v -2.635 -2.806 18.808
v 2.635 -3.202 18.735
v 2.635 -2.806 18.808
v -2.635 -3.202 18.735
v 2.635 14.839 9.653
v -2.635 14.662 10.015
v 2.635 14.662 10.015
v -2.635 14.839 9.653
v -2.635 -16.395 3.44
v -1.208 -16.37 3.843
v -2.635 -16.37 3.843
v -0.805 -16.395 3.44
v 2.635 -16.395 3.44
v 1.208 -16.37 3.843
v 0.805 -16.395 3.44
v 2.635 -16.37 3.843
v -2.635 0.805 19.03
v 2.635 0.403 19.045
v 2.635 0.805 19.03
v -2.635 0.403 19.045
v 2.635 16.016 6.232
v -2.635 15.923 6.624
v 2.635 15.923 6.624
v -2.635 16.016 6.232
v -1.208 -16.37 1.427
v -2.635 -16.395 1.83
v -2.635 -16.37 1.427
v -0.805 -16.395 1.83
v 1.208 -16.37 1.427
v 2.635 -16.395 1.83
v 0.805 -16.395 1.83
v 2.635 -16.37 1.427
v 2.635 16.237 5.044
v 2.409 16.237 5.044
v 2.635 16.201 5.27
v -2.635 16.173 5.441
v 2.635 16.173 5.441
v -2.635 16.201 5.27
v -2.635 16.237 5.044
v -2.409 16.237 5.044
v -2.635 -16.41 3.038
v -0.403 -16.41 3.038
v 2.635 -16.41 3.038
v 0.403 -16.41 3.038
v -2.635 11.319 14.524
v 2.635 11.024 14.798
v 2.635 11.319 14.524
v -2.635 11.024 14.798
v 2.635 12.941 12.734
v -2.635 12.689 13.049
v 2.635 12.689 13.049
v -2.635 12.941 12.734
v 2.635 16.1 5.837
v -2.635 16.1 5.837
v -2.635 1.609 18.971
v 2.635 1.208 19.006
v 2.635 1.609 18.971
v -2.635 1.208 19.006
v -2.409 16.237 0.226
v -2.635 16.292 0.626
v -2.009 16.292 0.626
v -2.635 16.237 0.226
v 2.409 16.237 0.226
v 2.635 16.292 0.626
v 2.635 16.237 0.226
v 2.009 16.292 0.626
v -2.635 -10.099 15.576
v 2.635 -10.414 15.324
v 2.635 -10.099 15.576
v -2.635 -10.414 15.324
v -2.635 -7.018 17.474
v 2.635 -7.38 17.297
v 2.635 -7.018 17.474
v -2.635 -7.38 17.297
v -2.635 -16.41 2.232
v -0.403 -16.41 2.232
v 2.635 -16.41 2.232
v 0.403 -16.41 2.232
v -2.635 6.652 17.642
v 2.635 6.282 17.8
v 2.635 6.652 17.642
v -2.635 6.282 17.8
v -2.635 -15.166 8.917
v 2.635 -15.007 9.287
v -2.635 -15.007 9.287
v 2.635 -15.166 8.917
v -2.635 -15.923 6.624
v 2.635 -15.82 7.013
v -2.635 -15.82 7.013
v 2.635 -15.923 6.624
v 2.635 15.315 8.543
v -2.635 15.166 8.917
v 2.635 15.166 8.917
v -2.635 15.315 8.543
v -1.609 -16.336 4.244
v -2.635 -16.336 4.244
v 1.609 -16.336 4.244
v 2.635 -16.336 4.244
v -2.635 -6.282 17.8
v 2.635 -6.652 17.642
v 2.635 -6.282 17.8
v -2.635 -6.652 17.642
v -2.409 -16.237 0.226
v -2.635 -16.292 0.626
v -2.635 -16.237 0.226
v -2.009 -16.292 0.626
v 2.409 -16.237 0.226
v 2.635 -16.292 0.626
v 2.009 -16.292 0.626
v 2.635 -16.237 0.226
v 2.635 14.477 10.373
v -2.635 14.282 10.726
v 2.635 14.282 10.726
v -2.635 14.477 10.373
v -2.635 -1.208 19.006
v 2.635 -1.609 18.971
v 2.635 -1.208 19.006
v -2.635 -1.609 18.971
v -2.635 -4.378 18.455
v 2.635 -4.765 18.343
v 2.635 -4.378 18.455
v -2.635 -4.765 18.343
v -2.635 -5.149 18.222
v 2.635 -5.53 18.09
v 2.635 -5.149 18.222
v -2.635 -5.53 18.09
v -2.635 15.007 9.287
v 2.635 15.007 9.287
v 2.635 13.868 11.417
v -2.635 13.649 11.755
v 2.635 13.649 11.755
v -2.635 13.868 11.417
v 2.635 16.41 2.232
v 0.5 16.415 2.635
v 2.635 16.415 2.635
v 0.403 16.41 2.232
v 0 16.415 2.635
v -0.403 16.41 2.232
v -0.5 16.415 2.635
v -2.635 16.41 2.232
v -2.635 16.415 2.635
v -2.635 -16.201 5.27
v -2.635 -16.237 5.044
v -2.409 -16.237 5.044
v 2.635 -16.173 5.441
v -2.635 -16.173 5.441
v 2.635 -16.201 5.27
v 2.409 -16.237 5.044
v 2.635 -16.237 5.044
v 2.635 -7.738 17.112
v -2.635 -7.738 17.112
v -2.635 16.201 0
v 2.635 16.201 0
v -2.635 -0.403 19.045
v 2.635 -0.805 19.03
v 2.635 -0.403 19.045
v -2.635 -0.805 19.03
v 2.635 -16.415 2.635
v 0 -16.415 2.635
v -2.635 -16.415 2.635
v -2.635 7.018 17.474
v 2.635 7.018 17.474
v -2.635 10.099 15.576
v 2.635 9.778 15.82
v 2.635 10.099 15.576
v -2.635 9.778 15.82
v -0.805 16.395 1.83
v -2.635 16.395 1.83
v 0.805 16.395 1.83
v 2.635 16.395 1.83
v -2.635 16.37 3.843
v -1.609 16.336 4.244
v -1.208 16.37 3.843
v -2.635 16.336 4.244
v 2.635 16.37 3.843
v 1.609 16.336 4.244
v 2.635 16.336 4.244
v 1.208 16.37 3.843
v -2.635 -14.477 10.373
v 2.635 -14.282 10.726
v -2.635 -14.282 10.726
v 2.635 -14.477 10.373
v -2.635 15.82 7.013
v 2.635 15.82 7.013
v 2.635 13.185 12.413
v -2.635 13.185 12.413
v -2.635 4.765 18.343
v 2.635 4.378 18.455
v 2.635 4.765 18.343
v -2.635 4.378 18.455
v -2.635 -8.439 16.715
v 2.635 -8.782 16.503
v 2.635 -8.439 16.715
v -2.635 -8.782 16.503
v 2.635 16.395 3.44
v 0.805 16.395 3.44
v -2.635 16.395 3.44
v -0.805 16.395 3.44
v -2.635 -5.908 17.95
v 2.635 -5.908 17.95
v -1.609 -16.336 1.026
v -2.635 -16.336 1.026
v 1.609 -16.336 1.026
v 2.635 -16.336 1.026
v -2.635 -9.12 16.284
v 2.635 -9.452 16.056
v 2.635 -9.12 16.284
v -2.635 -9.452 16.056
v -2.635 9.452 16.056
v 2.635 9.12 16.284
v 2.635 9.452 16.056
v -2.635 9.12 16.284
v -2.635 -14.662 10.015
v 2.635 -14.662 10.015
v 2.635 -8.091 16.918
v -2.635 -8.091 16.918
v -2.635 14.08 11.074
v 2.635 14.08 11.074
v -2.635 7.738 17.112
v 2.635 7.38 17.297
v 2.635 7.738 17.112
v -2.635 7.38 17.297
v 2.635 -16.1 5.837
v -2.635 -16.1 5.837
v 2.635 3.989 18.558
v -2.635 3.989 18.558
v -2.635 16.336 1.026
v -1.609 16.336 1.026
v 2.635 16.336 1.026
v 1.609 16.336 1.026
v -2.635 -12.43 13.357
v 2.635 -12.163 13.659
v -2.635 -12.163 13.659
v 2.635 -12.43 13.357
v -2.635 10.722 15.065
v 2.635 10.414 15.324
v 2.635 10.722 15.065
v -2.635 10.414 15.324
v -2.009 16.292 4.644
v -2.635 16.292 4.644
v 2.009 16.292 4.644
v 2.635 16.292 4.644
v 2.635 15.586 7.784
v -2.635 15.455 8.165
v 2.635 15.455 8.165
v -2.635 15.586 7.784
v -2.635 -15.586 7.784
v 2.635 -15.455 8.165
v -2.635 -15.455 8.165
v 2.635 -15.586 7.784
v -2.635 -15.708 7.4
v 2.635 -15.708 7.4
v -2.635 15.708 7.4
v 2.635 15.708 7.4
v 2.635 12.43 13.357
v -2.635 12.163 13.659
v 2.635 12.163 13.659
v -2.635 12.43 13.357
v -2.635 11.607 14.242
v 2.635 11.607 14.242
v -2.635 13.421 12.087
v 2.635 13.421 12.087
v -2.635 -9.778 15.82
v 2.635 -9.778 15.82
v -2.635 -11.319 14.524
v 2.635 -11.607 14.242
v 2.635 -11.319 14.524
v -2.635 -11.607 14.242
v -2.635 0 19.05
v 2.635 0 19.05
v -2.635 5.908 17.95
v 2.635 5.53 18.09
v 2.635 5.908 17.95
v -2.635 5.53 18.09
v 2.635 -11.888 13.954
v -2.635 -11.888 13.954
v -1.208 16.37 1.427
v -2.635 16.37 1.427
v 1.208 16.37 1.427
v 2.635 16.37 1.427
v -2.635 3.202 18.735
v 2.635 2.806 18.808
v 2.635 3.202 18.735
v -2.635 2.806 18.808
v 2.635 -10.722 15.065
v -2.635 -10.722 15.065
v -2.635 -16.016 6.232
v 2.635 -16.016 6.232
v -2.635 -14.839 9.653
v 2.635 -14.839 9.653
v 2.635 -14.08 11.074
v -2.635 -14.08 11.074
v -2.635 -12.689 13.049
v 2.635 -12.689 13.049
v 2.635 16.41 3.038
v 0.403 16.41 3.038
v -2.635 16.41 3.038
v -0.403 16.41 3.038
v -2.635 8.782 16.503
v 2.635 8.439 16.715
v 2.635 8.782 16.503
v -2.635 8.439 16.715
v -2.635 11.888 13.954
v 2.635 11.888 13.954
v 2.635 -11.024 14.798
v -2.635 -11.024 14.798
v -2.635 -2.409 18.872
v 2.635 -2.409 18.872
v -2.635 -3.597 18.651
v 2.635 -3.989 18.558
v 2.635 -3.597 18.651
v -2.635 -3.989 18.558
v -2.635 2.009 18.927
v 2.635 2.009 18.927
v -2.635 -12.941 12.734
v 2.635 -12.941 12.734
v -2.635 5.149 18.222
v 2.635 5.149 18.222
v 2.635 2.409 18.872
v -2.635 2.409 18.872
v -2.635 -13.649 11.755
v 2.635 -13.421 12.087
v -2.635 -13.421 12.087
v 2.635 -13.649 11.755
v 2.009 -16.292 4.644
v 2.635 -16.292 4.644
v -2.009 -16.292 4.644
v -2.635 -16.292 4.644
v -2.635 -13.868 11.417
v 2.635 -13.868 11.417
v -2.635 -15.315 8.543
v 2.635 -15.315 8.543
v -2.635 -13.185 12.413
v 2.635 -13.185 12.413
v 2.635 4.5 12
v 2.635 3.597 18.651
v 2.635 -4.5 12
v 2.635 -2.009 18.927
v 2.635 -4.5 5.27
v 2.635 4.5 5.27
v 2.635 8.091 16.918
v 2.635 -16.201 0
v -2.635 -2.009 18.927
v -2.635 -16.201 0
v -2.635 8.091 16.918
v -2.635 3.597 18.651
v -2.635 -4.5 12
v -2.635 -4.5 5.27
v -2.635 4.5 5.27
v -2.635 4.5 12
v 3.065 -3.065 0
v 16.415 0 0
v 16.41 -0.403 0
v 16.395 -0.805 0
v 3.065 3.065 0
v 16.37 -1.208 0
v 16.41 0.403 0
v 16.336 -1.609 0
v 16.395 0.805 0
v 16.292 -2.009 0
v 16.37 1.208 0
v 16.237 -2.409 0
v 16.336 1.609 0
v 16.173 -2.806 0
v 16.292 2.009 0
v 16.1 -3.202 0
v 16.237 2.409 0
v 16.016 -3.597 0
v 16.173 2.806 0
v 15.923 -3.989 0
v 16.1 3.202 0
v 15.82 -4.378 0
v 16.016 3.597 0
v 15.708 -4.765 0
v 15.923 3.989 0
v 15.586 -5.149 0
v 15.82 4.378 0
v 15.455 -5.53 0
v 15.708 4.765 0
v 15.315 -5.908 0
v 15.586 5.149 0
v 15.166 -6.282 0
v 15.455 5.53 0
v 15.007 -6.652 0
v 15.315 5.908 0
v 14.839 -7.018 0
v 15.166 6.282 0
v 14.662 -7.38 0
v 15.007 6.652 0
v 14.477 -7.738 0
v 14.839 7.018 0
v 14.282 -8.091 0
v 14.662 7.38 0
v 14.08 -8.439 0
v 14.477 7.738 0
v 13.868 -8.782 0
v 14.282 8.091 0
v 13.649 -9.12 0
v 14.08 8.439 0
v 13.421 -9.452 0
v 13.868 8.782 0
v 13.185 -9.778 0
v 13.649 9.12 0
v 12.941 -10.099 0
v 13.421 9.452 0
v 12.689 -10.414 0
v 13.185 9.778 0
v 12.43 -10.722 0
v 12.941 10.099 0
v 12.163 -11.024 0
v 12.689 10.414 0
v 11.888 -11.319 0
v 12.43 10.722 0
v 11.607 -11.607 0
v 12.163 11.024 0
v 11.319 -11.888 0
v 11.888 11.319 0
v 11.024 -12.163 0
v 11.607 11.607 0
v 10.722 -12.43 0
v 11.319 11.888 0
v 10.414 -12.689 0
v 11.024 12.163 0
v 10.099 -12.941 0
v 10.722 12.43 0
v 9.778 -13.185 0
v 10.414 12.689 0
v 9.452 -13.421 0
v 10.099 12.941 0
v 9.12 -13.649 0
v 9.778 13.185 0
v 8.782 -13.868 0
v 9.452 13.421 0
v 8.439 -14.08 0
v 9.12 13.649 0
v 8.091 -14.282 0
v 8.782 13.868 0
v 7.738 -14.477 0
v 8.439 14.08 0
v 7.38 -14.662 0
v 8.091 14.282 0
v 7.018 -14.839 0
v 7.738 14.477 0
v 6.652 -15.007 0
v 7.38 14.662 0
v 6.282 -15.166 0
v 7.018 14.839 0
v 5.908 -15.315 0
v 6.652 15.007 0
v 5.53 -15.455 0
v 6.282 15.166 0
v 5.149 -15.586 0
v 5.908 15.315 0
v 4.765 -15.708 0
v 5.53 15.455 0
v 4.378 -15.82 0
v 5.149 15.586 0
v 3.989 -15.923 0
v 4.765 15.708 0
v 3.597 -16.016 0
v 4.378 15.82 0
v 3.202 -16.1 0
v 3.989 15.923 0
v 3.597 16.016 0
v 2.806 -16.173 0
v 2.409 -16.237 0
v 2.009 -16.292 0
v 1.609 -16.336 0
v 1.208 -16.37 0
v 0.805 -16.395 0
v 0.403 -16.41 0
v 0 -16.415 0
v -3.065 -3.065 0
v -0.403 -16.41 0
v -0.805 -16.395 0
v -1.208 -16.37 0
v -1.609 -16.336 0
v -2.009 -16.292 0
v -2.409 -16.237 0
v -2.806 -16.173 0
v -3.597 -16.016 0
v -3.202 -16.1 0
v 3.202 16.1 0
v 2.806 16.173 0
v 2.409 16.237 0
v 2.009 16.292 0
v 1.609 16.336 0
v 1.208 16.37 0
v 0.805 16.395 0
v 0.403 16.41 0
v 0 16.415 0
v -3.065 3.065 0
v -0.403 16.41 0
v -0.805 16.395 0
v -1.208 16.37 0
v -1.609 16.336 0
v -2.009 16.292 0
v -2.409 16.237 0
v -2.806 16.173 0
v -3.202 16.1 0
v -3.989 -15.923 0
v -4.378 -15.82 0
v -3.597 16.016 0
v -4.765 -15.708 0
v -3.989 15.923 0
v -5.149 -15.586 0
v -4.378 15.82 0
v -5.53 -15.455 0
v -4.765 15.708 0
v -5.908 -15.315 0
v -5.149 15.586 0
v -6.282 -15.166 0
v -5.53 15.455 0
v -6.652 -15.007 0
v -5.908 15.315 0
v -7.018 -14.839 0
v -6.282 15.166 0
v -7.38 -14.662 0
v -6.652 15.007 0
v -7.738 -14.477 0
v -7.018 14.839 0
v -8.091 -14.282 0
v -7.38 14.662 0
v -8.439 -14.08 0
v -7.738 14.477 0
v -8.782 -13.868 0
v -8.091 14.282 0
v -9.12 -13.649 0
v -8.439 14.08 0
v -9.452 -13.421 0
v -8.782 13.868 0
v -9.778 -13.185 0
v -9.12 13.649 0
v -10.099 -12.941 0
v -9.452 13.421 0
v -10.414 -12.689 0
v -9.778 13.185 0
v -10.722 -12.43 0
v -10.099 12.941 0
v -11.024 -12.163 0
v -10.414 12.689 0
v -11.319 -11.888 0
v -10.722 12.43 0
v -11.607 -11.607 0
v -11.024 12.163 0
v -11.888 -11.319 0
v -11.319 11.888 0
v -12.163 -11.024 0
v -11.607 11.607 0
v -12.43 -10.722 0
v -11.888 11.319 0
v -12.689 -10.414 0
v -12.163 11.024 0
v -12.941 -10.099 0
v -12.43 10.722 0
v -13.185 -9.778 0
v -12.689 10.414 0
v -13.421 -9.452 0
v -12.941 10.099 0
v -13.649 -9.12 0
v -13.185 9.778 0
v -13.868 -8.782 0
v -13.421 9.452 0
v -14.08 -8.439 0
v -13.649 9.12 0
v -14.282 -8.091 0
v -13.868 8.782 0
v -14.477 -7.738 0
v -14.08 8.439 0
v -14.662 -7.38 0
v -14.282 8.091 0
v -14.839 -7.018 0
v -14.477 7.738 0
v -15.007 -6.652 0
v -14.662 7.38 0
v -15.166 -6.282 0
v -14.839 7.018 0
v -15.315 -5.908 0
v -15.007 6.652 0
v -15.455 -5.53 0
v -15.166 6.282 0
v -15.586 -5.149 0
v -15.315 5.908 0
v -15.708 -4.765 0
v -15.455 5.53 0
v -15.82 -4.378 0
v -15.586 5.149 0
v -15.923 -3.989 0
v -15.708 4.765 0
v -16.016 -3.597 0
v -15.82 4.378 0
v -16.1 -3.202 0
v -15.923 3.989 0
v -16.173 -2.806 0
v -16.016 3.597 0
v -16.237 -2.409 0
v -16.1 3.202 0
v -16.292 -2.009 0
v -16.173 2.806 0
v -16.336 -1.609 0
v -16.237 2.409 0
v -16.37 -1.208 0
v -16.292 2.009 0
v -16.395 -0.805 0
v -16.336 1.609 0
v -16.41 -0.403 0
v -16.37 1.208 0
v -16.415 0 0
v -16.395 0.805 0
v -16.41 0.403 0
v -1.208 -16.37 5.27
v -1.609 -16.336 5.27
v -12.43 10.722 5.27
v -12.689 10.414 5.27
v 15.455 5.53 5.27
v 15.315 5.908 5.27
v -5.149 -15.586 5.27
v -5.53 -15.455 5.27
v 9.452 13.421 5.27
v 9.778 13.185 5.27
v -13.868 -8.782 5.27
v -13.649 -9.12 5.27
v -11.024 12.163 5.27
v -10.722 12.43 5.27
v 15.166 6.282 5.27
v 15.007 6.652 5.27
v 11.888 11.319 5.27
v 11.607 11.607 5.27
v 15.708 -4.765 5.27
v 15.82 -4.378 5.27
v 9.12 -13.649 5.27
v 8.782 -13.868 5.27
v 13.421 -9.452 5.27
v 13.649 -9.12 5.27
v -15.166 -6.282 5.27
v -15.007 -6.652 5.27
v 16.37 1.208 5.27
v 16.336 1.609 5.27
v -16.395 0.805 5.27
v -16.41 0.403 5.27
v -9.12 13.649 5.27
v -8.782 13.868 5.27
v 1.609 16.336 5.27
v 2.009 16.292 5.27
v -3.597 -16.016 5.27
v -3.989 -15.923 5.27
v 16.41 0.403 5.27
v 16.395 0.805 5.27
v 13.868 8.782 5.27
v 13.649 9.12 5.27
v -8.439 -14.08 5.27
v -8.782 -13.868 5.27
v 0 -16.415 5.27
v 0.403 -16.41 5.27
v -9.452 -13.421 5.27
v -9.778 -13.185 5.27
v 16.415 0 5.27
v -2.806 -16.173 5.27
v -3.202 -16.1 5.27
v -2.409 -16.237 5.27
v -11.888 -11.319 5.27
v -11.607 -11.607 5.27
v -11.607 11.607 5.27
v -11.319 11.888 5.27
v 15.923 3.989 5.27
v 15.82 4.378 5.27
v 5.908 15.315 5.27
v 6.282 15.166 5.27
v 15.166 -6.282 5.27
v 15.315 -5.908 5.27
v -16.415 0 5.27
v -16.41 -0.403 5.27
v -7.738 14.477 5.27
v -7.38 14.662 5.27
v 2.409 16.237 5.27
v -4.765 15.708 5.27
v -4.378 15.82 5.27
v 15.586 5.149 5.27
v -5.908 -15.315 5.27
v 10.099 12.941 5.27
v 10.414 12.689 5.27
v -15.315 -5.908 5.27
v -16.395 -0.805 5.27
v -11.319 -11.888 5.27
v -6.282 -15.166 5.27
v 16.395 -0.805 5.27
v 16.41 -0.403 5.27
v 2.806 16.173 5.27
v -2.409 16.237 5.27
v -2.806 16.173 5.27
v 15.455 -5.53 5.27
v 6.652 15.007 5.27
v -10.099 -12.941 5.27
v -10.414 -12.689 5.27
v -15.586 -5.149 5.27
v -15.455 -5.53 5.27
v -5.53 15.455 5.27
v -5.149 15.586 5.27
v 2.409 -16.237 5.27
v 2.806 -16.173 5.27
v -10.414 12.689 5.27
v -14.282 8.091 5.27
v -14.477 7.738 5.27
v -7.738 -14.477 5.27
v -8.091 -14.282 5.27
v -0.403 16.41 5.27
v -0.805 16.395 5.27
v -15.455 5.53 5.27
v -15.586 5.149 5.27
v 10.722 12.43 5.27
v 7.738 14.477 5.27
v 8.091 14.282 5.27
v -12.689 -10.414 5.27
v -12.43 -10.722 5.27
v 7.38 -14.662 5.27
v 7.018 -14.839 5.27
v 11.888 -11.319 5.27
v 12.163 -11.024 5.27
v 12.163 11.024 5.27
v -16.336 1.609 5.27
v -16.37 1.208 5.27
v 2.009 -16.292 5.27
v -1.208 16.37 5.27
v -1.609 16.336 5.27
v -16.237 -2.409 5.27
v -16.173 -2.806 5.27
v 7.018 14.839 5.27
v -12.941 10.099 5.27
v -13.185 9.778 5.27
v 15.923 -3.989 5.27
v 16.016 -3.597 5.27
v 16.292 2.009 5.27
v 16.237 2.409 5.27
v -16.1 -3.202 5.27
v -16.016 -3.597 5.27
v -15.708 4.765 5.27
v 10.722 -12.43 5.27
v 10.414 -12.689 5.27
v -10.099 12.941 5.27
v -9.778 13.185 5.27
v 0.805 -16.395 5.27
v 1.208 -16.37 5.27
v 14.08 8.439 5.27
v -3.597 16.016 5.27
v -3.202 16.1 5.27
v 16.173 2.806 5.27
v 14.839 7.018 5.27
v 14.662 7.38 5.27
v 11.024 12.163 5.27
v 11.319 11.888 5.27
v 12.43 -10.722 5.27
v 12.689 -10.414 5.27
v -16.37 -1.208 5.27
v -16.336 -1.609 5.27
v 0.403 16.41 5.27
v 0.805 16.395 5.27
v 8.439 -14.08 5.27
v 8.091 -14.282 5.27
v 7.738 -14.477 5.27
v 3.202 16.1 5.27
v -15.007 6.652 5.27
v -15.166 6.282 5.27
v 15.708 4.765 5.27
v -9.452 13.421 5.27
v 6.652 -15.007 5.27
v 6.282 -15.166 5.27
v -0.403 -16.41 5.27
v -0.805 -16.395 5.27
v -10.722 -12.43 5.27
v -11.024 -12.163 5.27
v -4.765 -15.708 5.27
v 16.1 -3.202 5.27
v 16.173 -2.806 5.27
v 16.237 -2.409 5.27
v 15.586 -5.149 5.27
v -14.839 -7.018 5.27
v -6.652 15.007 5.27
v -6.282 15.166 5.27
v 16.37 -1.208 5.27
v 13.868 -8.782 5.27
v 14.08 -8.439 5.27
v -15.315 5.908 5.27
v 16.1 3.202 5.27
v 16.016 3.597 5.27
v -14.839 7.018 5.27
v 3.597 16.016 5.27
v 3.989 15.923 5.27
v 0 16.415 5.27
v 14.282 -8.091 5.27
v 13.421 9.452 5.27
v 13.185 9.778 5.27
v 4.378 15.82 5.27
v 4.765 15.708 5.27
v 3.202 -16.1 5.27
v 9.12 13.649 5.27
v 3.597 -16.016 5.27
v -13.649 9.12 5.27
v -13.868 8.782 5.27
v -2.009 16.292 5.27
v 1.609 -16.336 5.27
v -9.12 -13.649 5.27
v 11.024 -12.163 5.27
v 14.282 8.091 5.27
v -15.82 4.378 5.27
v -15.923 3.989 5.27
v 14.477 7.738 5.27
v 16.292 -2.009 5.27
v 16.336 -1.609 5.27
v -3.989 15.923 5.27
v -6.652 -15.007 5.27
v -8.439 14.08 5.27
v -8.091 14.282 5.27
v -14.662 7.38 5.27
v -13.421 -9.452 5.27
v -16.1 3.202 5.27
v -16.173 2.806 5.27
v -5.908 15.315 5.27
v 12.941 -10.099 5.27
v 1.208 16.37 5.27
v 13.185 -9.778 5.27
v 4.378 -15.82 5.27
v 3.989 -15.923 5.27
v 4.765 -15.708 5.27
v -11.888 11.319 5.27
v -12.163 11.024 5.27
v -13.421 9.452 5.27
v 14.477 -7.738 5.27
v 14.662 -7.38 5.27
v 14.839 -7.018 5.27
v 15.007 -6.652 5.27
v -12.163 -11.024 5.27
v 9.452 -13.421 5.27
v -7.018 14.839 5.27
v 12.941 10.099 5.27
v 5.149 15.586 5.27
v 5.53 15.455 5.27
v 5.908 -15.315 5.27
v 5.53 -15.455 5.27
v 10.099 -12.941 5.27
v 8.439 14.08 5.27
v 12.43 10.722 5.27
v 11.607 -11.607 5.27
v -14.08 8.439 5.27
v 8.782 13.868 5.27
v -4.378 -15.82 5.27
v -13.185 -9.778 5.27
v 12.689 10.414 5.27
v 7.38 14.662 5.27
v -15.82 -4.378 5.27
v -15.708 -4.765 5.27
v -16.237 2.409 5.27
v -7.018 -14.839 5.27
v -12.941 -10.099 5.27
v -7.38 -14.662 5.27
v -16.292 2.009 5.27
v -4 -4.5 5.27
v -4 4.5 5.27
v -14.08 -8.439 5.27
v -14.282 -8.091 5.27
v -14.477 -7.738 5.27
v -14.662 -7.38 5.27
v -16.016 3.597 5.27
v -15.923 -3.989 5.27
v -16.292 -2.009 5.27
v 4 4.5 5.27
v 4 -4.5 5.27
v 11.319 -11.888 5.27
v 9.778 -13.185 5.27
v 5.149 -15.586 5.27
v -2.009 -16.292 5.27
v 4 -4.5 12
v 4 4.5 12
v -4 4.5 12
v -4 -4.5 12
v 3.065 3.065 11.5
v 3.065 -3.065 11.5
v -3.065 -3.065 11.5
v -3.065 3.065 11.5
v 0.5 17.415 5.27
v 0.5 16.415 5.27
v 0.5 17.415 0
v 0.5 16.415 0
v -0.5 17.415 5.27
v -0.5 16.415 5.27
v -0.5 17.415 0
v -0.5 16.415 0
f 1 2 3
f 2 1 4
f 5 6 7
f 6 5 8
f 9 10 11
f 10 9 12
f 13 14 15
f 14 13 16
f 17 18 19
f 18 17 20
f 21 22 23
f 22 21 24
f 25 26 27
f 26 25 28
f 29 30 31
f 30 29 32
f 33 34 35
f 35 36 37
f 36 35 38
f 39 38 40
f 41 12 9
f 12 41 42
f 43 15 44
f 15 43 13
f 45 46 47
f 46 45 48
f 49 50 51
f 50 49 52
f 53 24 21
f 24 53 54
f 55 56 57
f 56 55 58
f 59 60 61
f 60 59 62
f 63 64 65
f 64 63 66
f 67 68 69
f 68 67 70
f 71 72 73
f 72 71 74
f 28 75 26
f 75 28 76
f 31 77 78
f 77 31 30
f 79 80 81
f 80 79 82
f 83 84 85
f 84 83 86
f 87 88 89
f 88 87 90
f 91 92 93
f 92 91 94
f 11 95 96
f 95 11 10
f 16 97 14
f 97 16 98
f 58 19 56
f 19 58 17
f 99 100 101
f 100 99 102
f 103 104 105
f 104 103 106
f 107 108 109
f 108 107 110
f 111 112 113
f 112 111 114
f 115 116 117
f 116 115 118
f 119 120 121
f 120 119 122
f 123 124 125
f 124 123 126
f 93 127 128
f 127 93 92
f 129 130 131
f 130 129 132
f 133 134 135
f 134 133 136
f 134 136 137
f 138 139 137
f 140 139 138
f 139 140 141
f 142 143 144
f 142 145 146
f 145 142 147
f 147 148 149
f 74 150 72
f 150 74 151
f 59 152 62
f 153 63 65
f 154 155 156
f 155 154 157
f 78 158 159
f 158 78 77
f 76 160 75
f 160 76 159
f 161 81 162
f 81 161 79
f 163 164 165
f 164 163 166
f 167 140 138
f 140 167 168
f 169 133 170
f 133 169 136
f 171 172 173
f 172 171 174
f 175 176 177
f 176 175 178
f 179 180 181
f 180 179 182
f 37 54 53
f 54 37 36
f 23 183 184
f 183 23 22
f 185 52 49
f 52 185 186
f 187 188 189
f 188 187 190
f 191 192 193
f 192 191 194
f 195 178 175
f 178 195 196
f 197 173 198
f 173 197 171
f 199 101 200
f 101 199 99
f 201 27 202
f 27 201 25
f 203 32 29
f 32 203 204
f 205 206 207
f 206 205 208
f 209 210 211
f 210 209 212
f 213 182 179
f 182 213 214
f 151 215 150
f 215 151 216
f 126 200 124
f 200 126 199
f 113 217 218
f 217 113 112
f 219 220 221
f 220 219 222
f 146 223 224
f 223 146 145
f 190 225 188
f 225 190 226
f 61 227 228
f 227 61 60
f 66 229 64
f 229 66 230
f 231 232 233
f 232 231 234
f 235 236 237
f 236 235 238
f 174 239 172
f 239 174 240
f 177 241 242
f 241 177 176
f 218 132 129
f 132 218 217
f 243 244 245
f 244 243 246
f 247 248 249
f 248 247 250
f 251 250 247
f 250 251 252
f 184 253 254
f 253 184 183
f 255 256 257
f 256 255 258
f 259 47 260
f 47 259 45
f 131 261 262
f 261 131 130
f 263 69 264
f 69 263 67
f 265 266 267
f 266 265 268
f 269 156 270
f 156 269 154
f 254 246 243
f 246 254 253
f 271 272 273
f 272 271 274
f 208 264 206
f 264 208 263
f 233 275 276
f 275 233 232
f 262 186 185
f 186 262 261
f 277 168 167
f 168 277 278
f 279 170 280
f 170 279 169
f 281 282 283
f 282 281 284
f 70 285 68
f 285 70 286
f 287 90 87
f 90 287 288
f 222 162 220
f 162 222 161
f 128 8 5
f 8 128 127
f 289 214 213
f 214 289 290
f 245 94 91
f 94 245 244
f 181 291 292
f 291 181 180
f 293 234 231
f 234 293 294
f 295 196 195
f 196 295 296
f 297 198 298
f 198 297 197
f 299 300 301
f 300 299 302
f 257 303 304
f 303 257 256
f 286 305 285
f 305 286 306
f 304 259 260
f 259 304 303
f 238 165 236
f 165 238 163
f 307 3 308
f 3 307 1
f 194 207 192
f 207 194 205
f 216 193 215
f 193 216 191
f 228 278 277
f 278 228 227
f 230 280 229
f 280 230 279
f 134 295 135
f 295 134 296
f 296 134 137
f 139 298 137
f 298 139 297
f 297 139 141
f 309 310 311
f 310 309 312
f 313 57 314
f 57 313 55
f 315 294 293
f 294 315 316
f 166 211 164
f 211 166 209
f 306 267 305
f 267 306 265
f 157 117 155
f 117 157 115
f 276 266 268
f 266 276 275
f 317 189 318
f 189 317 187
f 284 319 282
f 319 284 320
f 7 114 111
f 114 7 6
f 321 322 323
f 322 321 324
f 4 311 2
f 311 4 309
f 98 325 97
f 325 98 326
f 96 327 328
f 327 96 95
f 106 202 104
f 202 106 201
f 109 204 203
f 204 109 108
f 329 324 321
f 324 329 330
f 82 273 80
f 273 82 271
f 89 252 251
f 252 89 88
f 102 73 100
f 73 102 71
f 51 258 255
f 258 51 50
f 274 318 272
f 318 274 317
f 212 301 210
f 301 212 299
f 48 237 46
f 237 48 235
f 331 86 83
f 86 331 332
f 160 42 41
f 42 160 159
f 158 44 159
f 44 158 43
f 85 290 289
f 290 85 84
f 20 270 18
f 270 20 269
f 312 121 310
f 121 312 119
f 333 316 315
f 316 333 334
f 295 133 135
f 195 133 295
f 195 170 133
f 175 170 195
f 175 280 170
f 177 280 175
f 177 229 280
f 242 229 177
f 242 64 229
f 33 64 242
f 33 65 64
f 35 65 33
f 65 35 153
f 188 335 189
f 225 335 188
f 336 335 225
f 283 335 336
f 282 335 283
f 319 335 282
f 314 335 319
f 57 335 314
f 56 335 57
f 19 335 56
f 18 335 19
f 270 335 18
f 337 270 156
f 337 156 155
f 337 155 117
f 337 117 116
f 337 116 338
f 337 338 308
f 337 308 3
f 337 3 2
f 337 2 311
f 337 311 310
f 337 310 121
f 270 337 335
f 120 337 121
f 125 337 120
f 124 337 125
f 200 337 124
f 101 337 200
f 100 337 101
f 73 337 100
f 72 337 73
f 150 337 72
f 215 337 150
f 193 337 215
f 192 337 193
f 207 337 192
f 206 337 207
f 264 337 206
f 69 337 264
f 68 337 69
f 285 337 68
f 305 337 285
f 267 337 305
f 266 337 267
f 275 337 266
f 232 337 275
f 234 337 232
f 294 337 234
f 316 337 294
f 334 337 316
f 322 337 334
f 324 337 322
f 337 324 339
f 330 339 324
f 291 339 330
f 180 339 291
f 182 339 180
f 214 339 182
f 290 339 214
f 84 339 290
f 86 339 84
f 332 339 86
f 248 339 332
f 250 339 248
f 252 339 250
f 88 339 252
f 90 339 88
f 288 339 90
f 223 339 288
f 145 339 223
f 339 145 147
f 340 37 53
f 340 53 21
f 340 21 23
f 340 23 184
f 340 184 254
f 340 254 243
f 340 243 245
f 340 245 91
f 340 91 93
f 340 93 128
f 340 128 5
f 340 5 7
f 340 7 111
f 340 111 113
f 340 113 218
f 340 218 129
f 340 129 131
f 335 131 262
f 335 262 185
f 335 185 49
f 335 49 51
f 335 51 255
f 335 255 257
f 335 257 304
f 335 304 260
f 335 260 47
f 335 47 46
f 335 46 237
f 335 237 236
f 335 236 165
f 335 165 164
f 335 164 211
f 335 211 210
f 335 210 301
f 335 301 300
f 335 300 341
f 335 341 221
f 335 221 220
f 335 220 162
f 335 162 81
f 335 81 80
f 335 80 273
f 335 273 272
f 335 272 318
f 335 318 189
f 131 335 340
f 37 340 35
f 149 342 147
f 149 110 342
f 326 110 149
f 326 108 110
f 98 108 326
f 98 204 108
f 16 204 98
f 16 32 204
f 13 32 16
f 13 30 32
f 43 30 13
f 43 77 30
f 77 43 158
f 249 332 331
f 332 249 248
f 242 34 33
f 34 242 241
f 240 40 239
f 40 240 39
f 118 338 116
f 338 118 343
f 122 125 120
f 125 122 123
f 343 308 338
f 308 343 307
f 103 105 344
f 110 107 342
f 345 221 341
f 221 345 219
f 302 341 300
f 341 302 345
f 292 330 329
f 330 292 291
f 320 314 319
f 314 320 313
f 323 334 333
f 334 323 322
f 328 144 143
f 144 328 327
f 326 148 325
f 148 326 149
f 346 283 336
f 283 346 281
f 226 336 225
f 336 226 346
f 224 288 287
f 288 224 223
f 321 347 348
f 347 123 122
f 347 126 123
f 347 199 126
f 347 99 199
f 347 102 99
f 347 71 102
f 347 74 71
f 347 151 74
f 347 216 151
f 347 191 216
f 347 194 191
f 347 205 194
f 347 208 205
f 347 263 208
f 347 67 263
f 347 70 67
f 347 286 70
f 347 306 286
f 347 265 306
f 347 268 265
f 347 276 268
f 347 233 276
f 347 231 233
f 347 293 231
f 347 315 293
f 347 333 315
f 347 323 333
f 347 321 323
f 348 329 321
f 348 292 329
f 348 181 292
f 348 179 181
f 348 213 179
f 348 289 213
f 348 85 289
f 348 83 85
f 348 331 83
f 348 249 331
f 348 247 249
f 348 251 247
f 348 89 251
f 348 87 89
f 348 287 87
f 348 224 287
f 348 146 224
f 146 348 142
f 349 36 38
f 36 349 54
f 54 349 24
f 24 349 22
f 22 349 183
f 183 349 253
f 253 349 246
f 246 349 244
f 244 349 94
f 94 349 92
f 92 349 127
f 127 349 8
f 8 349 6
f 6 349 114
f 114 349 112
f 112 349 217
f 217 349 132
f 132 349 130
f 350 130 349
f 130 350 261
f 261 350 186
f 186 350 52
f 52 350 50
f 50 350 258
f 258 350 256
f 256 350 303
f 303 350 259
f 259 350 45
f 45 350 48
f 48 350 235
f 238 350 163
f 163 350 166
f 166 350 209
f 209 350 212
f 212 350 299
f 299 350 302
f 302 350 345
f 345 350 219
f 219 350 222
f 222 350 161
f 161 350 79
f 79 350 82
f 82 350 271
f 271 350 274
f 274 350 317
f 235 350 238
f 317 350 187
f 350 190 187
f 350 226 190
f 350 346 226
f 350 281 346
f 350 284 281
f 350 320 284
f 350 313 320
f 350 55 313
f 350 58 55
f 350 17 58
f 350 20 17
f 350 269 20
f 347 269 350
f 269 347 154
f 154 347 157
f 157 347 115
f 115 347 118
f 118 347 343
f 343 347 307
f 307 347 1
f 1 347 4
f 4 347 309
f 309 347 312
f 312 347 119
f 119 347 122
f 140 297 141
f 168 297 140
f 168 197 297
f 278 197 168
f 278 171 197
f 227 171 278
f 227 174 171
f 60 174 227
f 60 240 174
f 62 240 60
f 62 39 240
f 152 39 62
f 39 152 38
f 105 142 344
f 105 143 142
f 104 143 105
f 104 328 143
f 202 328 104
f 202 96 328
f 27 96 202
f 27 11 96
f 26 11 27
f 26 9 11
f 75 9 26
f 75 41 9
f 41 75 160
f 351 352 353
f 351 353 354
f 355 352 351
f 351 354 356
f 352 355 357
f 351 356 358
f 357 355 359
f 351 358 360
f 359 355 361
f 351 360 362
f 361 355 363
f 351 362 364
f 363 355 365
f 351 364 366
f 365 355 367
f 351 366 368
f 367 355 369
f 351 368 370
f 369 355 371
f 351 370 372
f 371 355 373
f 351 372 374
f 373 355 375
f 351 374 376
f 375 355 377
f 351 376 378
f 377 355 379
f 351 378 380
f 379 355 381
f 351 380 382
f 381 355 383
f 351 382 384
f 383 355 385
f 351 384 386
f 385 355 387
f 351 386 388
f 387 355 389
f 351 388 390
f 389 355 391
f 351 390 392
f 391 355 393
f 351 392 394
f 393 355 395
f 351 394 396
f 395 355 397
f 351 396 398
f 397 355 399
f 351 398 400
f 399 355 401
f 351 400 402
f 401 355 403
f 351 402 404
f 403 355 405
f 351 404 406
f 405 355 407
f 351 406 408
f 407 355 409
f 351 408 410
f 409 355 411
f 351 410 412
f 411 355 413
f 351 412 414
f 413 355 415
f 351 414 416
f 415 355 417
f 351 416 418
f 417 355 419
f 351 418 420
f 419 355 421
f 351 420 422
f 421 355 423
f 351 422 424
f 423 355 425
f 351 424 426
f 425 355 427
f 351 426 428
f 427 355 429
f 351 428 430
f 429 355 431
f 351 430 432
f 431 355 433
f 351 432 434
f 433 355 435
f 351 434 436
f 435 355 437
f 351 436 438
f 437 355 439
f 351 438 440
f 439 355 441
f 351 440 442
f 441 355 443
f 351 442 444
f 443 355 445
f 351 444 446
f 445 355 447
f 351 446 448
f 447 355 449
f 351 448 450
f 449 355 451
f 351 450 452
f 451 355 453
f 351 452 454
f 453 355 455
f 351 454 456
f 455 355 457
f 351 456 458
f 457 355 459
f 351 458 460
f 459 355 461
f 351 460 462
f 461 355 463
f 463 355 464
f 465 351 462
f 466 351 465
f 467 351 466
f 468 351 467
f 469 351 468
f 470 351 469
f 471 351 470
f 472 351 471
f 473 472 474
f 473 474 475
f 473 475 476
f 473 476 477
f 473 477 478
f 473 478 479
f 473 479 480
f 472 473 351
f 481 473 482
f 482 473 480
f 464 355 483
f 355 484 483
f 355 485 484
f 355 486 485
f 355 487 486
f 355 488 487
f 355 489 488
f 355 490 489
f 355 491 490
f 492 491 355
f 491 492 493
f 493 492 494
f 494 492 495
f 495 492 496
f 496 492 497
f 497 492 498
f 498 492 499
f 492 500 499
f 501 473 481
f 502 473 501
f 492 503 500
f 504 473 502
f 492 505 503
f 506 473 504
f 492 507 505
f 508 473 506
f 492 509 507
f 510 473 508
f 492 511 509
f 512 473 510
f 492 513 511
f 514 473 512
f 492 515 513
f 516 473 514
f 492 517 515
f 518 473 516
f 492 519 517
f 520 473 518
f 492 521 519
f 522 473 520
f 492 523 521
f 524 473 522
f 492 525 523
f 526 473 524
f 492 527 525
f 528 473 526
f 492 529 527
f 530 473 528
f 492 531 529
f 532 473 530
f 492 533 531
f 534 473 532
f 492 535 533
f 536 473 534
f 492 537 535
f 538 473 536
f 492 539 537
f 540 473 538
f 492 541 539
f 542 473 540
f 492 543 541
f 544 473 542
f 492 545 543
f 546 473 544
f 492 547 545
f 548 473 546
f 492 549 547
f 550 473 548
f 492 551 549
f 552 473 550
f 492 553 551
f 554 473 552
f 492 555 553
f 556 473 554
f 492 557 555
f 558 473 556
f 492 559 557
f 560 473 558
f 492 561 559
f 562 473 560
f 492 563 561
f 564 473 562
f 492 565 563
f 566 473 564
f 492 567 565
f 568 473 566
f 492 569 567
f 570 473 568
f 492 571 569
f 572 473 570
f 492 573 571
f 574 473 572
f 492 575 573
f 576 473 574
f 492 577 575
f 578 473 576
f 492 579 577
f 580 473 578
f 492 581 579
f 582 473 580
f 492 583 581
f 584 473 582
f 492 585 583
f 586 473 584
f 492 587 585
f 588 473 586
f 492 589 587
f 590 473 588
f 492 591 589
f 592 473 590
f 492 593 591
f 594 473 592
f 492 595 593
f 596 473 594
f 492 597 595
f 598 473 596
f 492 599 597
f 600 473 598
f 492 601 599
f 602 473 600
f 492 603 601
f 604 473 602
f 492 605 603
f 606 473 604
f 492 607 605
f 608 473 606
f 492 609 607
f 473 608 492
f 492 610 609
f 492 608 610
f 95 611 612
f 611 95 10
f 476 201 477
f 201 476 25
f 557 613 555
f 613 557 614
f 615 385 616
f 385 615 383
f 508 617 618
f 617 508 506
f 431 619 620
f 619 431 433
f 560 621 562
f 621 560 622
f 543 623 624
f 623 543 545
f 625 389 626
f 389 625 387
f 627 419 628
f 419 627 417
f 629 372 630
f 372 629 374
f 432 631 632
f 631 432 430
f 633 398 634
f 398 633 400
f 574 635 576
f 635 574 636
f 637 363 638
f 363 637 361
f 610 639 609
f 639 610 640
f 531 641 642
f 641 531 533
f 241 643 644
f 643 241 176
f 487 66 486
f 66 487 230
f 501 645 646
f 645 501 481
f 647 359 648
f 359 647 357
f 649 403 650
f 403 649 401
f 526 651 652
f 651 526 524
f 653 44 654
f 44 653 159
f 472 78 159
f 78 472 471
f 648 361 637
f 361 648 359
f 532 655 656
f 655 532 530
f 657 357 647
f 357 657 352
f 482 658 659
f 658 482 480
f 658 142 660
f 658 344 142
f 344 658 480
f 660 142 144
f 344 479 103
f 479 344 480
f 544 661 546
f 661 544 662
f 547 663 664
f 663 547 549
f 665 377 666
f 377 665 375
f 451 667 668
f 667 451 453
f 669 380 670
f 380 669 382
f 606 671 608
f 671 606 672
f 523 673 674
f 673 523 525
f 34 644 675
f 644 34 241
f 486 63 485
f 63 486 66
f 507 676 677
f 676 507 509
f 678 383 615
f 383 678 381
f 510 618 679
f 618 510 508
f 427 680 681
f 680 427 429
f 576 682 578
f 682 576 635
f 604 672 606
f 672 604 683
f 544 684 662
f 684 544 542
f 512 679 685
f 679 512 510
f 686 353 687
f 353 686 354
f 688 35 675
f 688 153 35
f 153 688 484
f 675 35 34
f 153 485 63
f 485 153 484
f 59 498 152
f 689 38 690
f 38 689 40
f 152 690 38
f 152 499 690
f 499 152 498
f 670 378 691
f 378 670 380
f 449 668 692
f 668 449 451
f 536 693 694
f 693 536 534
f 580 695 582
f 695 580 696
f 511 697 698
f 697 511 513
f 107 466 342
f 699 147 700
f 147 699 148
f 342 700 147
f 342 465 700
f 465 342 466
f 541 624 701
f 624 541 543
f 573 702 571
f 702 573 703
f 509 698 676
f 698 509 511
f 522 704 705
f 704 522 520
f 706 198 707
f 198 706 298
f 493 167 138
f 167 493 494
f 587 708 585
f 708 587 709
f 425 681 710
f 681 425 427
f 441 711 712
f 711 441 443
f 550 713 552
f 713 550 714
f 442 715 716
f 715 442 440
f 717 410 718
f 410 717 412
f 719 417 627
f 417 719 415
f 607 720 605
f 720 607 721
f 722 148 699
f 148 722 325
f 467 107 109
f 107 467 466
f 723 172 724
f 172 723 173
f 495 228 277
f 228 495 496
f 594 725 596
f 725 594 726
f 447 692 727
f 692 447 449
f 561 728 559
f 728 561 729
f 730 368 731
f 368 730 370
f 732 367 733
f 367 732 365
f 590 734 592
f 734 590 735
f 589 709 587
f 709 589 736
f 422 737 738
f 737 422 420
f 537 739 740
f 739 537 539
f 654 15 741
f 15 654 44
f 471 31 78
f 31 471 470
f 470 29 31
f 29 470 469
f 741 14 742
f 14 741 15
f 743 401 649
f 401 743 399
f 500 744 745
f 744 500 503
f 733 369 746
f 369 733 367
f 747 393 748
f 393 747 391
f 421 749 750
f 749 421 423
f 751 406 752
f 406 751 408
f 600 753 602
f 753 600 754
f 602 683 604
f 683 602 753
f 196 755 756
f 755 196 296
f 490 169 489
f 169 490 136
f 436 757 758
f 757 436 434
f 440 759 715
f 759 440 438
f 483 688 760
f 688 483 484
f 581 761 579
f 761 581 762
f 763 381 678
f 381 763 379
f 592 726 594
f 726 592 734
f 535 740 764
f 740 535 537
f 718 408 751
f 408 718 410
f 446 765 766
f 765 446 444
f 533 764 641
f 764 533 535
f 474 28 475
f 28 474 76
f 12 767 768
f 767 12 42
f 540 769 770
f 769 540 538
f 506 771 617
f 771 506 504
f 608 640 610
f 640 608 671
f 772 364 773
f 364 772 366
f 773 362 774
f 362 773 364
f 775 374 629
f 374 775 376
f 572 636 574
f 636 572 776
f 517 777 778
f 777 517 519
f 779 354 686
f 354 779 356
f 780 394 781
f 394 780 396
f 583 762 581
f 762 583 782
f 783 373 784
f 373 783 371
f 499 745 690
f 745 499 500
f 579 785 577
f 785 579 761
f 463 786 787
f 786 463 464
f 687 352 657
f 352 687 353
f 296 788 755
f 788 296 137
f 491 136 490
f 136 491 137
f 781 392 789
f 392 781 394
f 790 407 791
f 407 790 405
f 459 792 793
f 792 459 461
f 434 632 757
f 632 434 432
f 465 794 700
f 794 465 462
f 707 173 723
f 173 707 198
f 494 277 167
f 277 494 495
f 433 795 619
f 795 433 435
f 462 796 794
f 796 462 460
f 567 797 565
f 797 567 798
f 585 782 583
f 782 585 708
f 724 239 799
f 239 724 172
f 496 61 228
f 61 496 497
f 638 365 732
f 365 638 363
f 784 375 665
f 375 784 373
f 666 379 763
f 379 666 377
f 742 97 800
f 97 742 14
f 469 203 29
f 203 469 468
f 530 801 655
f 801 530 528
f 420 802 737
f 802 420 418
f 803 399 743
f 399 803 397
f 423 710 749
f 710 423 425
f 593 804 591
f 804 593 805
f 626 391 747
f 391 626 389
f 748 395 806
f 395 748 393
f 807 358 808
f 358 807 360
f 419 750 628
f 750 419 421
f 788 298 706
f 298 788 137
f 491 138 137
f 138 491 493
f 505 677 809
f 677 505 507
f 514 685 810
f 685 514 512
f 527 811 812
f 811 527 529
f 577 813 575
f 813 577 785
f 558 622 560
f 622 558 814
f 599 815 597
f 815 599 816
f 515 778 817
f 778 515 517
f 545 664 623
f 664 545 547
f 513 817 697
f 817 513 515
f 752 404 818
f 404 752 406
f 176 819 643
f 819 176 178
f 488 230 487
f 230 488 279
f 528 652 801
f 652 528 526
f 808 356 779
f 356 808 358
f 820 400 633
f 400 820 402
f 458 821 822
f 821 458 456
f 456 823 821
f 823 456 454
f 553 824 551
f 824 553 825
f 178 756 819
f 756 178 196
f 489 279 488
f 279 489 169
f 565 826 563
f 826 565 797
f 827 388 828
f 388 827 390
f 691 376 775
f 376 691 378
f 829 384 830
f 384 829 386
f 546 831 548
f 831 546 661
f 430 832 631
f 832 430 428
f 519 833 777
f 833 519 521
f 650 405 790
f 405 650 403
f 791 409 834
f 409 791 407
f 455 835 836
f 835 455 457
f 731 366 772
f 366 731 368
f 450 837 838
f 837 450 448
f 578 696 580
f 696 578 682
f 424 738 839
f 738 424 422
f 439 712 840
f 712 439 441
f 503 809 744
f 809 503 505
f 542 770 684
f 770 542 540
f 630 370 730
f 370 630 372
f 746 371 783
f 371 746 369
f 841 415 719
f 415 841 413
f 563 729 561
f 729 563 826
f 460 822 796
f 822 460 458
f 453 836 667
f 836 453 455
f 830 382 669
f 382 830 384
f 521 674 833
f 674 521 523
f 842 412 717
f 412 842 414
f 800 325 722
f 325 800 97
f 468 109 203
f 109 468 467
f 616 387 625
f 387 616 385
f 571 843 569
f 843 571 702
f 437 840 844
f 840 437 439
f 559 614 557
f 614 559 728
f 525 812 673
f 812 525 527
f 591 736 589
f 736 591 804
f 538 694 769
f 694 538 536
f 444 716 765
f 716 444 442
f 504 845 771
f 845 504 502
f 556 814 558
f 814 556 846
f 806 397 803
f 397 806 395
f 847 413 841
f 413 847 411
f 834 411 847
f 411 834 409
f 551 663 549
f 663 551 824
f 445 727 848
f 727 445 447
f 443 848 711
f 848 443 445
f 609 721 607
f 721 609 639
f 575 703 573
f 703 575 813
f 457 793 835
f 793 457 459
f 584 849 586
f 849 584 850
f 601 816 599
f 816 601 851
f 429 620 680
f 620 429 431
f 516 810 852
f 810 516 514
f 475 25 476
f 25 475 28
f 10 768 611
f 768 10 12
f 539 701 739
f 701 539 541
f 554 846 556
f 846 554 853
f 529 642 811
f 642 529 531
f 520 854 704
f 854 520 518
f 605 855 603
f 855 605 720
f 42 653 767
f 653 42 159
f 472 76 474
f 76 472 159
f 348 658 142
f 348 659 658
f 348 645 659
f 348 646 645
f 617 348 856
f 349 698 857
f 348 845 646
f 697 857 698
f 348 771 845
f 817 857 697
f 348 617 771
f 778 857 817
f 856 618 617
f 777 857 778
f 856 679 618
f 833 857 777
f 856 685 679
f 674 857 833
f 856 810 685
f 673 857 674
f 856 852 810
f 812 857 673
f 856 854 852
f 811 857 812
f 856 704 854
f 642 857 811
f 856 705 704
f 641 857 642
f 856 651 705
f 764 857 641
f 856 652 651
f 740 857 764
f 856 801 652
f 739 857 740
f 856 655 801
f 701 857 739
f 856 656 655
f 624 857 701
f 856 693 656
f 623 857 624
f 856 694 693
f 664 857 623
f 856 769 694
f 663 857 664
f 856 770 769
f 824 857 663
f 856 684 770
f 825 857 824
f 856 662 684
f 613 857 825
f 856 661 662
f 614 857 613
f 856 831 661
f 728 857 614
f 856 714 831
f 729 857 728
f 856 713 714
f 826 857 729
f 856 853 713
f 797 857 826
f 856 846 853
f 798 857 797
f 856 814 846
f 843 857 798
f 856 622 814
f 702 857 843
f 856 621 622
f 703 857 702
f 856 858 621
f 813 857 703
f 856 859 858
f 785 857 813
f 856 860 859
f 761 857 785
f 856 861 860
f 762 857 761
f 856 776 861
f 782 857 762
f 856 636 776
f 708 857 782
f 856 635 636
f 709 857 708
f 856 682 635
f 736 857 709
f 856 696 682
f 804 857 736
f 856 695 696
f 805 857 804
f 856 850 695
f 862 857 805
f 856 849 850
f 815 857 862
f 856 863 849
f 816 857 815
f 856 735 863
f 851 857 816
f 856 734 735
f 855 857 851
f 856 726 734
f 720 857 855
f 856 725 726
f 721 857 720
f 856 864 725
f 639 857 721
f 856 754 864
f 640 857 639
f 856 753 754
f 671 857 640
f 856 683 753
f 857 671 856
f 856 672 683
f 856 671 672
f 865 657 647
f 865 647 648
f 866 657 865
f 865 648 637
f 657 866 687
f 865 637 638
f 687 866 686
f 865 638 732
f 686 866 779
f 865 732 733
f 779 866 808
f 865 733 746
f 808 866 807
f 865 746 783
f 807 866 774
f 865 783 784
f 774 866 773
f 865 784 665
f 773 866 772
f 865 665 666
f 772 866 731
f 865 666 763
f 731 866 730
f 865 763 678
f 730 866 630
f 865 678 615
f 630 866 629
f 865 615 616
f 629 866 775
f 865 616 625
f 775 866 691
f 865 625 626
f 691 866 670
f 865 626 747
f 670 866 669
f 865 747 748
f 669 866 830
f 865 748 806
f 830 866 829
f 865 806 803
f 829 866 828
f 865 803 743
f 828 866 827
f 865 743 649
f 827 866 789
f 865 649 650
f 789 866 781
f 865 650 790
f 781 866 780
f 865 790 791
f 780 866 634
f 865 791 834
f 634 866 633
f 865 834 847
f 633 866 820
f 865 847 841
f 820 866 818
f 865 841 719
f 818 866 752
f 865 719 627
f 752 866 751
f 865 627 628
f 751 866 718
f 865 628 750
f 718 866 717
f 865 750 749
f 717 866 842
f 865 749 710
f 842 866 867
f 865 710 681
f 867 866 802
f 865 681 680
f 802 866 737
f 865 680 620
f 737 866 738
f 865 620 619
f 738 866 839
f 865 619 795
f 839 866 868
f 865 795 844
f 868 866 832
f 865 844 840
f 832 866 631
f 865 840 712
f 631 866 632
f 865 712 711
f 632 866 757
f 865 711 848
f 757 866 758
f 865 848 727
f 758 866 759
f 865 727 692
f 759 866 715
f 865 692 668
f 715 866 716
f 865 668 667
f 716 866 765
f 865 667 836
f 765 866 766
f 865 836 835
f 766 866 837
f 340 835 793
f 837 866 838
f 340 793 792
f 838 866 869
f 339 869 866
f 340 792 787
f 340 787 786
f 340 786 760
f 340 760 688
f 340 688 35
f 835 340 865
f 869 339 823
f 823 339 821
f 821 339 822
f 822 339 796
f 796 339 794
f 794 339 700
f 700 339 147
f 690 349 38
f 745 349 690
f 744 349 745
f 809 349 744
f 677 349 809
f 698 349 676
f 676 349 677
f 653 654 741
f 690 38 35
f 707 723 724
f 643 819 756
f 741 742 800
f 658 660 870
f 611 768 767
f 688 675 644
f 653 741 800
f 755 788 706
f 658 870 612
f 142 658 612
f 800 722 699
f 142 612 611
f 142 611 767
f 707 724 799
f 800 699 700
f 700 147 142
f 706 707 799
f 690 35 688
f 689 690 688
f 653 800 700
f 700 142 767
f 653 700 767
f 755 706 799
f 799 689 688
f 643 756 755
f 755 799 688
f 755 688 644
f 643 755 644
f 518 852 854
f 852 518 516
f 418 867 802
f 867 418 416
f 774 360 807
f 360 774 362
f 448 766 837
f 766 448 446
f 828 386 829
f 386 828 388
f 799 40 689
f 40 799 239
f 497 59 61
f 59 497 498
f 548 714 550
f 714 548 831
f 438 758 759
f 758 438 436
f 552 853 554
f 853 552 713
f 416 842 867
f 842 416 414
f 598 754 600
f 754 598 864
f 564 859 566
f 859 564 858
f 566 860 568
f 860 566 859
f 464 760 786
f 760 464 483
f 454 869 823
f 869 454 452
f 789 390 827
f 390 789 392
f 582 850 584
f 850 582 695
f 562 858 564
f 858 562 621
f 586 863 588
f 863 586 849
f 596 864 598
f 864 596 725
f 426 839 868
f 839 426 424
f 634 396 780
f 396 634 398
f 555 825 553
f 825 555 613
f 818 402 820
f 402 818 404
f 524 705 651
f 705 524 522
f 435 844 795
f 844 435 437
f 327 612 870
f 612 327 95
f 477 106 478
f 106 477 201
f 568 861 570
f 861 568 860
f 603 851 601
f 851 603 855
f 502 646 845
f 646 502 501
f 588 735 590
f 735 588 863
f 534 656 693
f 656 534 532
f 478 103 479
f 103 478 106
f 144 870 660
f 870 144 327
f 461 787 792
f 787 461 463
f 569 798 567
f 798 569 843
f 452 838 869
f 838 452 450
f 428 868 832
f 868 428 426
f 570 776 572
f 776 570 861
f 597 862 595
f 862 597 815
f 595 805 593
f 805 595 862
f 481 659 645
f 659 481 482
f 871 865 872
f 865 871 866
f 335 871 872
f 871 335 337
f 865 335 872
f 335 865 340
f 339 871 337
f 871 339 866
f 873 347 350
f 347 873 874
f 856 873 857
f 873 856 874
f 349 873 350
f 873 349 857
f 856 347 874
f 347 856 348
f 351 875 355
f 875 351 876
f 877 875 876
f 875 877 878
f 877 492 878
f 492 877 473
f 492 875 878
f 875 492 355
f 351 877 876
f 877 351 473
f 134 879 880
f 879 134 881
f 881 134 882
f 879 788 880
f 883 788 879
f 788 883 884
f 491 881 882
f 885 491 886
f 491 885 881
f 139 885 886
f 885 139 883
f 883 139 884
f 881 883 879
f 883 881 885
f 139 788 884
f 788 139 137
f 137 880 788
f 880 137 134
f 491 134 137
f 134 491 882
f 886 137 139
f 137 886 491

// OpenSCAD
// Disque de base
module disquebase()
{
	difference()
	{
		translate([0,0,2.635]) cylinder(r=16.415, h=5.27, $fn=256, center=true);
	}
}

// Demi-disque
module demidisque()
{
	difference()
	{
		translate([0,0,2.635]) rotate([0,90,0]) cylinder(r=16.415, h=5.27, $fn=256, center=true);
		translate([0,0,-10]) cube([20,40,20], center=true);
	}
}

module cache()
{
	cube([2,9,7], center=true);
}


module base()
{
	disquebase();
	demidisque();
	translate([3,0,8.5])  cache();
	translate([-3,0,8.5])  cache();
}

module troucarre()
{
union()
{
		// Trou carré
		translate([0,0,5]) cube([6.13,6.13,13], center=true);
		//translate([3.05,3.05,0]) rotate([0,0,45]) cube([2,2,13], center=true);
}
}


module repere()
{	
	cube([1,1,5.27], center=true);
}

union()
{
	difference()
	{
		base();
		troucarre();
	}

	translate([0,16.915,2.635]) repere();
}
